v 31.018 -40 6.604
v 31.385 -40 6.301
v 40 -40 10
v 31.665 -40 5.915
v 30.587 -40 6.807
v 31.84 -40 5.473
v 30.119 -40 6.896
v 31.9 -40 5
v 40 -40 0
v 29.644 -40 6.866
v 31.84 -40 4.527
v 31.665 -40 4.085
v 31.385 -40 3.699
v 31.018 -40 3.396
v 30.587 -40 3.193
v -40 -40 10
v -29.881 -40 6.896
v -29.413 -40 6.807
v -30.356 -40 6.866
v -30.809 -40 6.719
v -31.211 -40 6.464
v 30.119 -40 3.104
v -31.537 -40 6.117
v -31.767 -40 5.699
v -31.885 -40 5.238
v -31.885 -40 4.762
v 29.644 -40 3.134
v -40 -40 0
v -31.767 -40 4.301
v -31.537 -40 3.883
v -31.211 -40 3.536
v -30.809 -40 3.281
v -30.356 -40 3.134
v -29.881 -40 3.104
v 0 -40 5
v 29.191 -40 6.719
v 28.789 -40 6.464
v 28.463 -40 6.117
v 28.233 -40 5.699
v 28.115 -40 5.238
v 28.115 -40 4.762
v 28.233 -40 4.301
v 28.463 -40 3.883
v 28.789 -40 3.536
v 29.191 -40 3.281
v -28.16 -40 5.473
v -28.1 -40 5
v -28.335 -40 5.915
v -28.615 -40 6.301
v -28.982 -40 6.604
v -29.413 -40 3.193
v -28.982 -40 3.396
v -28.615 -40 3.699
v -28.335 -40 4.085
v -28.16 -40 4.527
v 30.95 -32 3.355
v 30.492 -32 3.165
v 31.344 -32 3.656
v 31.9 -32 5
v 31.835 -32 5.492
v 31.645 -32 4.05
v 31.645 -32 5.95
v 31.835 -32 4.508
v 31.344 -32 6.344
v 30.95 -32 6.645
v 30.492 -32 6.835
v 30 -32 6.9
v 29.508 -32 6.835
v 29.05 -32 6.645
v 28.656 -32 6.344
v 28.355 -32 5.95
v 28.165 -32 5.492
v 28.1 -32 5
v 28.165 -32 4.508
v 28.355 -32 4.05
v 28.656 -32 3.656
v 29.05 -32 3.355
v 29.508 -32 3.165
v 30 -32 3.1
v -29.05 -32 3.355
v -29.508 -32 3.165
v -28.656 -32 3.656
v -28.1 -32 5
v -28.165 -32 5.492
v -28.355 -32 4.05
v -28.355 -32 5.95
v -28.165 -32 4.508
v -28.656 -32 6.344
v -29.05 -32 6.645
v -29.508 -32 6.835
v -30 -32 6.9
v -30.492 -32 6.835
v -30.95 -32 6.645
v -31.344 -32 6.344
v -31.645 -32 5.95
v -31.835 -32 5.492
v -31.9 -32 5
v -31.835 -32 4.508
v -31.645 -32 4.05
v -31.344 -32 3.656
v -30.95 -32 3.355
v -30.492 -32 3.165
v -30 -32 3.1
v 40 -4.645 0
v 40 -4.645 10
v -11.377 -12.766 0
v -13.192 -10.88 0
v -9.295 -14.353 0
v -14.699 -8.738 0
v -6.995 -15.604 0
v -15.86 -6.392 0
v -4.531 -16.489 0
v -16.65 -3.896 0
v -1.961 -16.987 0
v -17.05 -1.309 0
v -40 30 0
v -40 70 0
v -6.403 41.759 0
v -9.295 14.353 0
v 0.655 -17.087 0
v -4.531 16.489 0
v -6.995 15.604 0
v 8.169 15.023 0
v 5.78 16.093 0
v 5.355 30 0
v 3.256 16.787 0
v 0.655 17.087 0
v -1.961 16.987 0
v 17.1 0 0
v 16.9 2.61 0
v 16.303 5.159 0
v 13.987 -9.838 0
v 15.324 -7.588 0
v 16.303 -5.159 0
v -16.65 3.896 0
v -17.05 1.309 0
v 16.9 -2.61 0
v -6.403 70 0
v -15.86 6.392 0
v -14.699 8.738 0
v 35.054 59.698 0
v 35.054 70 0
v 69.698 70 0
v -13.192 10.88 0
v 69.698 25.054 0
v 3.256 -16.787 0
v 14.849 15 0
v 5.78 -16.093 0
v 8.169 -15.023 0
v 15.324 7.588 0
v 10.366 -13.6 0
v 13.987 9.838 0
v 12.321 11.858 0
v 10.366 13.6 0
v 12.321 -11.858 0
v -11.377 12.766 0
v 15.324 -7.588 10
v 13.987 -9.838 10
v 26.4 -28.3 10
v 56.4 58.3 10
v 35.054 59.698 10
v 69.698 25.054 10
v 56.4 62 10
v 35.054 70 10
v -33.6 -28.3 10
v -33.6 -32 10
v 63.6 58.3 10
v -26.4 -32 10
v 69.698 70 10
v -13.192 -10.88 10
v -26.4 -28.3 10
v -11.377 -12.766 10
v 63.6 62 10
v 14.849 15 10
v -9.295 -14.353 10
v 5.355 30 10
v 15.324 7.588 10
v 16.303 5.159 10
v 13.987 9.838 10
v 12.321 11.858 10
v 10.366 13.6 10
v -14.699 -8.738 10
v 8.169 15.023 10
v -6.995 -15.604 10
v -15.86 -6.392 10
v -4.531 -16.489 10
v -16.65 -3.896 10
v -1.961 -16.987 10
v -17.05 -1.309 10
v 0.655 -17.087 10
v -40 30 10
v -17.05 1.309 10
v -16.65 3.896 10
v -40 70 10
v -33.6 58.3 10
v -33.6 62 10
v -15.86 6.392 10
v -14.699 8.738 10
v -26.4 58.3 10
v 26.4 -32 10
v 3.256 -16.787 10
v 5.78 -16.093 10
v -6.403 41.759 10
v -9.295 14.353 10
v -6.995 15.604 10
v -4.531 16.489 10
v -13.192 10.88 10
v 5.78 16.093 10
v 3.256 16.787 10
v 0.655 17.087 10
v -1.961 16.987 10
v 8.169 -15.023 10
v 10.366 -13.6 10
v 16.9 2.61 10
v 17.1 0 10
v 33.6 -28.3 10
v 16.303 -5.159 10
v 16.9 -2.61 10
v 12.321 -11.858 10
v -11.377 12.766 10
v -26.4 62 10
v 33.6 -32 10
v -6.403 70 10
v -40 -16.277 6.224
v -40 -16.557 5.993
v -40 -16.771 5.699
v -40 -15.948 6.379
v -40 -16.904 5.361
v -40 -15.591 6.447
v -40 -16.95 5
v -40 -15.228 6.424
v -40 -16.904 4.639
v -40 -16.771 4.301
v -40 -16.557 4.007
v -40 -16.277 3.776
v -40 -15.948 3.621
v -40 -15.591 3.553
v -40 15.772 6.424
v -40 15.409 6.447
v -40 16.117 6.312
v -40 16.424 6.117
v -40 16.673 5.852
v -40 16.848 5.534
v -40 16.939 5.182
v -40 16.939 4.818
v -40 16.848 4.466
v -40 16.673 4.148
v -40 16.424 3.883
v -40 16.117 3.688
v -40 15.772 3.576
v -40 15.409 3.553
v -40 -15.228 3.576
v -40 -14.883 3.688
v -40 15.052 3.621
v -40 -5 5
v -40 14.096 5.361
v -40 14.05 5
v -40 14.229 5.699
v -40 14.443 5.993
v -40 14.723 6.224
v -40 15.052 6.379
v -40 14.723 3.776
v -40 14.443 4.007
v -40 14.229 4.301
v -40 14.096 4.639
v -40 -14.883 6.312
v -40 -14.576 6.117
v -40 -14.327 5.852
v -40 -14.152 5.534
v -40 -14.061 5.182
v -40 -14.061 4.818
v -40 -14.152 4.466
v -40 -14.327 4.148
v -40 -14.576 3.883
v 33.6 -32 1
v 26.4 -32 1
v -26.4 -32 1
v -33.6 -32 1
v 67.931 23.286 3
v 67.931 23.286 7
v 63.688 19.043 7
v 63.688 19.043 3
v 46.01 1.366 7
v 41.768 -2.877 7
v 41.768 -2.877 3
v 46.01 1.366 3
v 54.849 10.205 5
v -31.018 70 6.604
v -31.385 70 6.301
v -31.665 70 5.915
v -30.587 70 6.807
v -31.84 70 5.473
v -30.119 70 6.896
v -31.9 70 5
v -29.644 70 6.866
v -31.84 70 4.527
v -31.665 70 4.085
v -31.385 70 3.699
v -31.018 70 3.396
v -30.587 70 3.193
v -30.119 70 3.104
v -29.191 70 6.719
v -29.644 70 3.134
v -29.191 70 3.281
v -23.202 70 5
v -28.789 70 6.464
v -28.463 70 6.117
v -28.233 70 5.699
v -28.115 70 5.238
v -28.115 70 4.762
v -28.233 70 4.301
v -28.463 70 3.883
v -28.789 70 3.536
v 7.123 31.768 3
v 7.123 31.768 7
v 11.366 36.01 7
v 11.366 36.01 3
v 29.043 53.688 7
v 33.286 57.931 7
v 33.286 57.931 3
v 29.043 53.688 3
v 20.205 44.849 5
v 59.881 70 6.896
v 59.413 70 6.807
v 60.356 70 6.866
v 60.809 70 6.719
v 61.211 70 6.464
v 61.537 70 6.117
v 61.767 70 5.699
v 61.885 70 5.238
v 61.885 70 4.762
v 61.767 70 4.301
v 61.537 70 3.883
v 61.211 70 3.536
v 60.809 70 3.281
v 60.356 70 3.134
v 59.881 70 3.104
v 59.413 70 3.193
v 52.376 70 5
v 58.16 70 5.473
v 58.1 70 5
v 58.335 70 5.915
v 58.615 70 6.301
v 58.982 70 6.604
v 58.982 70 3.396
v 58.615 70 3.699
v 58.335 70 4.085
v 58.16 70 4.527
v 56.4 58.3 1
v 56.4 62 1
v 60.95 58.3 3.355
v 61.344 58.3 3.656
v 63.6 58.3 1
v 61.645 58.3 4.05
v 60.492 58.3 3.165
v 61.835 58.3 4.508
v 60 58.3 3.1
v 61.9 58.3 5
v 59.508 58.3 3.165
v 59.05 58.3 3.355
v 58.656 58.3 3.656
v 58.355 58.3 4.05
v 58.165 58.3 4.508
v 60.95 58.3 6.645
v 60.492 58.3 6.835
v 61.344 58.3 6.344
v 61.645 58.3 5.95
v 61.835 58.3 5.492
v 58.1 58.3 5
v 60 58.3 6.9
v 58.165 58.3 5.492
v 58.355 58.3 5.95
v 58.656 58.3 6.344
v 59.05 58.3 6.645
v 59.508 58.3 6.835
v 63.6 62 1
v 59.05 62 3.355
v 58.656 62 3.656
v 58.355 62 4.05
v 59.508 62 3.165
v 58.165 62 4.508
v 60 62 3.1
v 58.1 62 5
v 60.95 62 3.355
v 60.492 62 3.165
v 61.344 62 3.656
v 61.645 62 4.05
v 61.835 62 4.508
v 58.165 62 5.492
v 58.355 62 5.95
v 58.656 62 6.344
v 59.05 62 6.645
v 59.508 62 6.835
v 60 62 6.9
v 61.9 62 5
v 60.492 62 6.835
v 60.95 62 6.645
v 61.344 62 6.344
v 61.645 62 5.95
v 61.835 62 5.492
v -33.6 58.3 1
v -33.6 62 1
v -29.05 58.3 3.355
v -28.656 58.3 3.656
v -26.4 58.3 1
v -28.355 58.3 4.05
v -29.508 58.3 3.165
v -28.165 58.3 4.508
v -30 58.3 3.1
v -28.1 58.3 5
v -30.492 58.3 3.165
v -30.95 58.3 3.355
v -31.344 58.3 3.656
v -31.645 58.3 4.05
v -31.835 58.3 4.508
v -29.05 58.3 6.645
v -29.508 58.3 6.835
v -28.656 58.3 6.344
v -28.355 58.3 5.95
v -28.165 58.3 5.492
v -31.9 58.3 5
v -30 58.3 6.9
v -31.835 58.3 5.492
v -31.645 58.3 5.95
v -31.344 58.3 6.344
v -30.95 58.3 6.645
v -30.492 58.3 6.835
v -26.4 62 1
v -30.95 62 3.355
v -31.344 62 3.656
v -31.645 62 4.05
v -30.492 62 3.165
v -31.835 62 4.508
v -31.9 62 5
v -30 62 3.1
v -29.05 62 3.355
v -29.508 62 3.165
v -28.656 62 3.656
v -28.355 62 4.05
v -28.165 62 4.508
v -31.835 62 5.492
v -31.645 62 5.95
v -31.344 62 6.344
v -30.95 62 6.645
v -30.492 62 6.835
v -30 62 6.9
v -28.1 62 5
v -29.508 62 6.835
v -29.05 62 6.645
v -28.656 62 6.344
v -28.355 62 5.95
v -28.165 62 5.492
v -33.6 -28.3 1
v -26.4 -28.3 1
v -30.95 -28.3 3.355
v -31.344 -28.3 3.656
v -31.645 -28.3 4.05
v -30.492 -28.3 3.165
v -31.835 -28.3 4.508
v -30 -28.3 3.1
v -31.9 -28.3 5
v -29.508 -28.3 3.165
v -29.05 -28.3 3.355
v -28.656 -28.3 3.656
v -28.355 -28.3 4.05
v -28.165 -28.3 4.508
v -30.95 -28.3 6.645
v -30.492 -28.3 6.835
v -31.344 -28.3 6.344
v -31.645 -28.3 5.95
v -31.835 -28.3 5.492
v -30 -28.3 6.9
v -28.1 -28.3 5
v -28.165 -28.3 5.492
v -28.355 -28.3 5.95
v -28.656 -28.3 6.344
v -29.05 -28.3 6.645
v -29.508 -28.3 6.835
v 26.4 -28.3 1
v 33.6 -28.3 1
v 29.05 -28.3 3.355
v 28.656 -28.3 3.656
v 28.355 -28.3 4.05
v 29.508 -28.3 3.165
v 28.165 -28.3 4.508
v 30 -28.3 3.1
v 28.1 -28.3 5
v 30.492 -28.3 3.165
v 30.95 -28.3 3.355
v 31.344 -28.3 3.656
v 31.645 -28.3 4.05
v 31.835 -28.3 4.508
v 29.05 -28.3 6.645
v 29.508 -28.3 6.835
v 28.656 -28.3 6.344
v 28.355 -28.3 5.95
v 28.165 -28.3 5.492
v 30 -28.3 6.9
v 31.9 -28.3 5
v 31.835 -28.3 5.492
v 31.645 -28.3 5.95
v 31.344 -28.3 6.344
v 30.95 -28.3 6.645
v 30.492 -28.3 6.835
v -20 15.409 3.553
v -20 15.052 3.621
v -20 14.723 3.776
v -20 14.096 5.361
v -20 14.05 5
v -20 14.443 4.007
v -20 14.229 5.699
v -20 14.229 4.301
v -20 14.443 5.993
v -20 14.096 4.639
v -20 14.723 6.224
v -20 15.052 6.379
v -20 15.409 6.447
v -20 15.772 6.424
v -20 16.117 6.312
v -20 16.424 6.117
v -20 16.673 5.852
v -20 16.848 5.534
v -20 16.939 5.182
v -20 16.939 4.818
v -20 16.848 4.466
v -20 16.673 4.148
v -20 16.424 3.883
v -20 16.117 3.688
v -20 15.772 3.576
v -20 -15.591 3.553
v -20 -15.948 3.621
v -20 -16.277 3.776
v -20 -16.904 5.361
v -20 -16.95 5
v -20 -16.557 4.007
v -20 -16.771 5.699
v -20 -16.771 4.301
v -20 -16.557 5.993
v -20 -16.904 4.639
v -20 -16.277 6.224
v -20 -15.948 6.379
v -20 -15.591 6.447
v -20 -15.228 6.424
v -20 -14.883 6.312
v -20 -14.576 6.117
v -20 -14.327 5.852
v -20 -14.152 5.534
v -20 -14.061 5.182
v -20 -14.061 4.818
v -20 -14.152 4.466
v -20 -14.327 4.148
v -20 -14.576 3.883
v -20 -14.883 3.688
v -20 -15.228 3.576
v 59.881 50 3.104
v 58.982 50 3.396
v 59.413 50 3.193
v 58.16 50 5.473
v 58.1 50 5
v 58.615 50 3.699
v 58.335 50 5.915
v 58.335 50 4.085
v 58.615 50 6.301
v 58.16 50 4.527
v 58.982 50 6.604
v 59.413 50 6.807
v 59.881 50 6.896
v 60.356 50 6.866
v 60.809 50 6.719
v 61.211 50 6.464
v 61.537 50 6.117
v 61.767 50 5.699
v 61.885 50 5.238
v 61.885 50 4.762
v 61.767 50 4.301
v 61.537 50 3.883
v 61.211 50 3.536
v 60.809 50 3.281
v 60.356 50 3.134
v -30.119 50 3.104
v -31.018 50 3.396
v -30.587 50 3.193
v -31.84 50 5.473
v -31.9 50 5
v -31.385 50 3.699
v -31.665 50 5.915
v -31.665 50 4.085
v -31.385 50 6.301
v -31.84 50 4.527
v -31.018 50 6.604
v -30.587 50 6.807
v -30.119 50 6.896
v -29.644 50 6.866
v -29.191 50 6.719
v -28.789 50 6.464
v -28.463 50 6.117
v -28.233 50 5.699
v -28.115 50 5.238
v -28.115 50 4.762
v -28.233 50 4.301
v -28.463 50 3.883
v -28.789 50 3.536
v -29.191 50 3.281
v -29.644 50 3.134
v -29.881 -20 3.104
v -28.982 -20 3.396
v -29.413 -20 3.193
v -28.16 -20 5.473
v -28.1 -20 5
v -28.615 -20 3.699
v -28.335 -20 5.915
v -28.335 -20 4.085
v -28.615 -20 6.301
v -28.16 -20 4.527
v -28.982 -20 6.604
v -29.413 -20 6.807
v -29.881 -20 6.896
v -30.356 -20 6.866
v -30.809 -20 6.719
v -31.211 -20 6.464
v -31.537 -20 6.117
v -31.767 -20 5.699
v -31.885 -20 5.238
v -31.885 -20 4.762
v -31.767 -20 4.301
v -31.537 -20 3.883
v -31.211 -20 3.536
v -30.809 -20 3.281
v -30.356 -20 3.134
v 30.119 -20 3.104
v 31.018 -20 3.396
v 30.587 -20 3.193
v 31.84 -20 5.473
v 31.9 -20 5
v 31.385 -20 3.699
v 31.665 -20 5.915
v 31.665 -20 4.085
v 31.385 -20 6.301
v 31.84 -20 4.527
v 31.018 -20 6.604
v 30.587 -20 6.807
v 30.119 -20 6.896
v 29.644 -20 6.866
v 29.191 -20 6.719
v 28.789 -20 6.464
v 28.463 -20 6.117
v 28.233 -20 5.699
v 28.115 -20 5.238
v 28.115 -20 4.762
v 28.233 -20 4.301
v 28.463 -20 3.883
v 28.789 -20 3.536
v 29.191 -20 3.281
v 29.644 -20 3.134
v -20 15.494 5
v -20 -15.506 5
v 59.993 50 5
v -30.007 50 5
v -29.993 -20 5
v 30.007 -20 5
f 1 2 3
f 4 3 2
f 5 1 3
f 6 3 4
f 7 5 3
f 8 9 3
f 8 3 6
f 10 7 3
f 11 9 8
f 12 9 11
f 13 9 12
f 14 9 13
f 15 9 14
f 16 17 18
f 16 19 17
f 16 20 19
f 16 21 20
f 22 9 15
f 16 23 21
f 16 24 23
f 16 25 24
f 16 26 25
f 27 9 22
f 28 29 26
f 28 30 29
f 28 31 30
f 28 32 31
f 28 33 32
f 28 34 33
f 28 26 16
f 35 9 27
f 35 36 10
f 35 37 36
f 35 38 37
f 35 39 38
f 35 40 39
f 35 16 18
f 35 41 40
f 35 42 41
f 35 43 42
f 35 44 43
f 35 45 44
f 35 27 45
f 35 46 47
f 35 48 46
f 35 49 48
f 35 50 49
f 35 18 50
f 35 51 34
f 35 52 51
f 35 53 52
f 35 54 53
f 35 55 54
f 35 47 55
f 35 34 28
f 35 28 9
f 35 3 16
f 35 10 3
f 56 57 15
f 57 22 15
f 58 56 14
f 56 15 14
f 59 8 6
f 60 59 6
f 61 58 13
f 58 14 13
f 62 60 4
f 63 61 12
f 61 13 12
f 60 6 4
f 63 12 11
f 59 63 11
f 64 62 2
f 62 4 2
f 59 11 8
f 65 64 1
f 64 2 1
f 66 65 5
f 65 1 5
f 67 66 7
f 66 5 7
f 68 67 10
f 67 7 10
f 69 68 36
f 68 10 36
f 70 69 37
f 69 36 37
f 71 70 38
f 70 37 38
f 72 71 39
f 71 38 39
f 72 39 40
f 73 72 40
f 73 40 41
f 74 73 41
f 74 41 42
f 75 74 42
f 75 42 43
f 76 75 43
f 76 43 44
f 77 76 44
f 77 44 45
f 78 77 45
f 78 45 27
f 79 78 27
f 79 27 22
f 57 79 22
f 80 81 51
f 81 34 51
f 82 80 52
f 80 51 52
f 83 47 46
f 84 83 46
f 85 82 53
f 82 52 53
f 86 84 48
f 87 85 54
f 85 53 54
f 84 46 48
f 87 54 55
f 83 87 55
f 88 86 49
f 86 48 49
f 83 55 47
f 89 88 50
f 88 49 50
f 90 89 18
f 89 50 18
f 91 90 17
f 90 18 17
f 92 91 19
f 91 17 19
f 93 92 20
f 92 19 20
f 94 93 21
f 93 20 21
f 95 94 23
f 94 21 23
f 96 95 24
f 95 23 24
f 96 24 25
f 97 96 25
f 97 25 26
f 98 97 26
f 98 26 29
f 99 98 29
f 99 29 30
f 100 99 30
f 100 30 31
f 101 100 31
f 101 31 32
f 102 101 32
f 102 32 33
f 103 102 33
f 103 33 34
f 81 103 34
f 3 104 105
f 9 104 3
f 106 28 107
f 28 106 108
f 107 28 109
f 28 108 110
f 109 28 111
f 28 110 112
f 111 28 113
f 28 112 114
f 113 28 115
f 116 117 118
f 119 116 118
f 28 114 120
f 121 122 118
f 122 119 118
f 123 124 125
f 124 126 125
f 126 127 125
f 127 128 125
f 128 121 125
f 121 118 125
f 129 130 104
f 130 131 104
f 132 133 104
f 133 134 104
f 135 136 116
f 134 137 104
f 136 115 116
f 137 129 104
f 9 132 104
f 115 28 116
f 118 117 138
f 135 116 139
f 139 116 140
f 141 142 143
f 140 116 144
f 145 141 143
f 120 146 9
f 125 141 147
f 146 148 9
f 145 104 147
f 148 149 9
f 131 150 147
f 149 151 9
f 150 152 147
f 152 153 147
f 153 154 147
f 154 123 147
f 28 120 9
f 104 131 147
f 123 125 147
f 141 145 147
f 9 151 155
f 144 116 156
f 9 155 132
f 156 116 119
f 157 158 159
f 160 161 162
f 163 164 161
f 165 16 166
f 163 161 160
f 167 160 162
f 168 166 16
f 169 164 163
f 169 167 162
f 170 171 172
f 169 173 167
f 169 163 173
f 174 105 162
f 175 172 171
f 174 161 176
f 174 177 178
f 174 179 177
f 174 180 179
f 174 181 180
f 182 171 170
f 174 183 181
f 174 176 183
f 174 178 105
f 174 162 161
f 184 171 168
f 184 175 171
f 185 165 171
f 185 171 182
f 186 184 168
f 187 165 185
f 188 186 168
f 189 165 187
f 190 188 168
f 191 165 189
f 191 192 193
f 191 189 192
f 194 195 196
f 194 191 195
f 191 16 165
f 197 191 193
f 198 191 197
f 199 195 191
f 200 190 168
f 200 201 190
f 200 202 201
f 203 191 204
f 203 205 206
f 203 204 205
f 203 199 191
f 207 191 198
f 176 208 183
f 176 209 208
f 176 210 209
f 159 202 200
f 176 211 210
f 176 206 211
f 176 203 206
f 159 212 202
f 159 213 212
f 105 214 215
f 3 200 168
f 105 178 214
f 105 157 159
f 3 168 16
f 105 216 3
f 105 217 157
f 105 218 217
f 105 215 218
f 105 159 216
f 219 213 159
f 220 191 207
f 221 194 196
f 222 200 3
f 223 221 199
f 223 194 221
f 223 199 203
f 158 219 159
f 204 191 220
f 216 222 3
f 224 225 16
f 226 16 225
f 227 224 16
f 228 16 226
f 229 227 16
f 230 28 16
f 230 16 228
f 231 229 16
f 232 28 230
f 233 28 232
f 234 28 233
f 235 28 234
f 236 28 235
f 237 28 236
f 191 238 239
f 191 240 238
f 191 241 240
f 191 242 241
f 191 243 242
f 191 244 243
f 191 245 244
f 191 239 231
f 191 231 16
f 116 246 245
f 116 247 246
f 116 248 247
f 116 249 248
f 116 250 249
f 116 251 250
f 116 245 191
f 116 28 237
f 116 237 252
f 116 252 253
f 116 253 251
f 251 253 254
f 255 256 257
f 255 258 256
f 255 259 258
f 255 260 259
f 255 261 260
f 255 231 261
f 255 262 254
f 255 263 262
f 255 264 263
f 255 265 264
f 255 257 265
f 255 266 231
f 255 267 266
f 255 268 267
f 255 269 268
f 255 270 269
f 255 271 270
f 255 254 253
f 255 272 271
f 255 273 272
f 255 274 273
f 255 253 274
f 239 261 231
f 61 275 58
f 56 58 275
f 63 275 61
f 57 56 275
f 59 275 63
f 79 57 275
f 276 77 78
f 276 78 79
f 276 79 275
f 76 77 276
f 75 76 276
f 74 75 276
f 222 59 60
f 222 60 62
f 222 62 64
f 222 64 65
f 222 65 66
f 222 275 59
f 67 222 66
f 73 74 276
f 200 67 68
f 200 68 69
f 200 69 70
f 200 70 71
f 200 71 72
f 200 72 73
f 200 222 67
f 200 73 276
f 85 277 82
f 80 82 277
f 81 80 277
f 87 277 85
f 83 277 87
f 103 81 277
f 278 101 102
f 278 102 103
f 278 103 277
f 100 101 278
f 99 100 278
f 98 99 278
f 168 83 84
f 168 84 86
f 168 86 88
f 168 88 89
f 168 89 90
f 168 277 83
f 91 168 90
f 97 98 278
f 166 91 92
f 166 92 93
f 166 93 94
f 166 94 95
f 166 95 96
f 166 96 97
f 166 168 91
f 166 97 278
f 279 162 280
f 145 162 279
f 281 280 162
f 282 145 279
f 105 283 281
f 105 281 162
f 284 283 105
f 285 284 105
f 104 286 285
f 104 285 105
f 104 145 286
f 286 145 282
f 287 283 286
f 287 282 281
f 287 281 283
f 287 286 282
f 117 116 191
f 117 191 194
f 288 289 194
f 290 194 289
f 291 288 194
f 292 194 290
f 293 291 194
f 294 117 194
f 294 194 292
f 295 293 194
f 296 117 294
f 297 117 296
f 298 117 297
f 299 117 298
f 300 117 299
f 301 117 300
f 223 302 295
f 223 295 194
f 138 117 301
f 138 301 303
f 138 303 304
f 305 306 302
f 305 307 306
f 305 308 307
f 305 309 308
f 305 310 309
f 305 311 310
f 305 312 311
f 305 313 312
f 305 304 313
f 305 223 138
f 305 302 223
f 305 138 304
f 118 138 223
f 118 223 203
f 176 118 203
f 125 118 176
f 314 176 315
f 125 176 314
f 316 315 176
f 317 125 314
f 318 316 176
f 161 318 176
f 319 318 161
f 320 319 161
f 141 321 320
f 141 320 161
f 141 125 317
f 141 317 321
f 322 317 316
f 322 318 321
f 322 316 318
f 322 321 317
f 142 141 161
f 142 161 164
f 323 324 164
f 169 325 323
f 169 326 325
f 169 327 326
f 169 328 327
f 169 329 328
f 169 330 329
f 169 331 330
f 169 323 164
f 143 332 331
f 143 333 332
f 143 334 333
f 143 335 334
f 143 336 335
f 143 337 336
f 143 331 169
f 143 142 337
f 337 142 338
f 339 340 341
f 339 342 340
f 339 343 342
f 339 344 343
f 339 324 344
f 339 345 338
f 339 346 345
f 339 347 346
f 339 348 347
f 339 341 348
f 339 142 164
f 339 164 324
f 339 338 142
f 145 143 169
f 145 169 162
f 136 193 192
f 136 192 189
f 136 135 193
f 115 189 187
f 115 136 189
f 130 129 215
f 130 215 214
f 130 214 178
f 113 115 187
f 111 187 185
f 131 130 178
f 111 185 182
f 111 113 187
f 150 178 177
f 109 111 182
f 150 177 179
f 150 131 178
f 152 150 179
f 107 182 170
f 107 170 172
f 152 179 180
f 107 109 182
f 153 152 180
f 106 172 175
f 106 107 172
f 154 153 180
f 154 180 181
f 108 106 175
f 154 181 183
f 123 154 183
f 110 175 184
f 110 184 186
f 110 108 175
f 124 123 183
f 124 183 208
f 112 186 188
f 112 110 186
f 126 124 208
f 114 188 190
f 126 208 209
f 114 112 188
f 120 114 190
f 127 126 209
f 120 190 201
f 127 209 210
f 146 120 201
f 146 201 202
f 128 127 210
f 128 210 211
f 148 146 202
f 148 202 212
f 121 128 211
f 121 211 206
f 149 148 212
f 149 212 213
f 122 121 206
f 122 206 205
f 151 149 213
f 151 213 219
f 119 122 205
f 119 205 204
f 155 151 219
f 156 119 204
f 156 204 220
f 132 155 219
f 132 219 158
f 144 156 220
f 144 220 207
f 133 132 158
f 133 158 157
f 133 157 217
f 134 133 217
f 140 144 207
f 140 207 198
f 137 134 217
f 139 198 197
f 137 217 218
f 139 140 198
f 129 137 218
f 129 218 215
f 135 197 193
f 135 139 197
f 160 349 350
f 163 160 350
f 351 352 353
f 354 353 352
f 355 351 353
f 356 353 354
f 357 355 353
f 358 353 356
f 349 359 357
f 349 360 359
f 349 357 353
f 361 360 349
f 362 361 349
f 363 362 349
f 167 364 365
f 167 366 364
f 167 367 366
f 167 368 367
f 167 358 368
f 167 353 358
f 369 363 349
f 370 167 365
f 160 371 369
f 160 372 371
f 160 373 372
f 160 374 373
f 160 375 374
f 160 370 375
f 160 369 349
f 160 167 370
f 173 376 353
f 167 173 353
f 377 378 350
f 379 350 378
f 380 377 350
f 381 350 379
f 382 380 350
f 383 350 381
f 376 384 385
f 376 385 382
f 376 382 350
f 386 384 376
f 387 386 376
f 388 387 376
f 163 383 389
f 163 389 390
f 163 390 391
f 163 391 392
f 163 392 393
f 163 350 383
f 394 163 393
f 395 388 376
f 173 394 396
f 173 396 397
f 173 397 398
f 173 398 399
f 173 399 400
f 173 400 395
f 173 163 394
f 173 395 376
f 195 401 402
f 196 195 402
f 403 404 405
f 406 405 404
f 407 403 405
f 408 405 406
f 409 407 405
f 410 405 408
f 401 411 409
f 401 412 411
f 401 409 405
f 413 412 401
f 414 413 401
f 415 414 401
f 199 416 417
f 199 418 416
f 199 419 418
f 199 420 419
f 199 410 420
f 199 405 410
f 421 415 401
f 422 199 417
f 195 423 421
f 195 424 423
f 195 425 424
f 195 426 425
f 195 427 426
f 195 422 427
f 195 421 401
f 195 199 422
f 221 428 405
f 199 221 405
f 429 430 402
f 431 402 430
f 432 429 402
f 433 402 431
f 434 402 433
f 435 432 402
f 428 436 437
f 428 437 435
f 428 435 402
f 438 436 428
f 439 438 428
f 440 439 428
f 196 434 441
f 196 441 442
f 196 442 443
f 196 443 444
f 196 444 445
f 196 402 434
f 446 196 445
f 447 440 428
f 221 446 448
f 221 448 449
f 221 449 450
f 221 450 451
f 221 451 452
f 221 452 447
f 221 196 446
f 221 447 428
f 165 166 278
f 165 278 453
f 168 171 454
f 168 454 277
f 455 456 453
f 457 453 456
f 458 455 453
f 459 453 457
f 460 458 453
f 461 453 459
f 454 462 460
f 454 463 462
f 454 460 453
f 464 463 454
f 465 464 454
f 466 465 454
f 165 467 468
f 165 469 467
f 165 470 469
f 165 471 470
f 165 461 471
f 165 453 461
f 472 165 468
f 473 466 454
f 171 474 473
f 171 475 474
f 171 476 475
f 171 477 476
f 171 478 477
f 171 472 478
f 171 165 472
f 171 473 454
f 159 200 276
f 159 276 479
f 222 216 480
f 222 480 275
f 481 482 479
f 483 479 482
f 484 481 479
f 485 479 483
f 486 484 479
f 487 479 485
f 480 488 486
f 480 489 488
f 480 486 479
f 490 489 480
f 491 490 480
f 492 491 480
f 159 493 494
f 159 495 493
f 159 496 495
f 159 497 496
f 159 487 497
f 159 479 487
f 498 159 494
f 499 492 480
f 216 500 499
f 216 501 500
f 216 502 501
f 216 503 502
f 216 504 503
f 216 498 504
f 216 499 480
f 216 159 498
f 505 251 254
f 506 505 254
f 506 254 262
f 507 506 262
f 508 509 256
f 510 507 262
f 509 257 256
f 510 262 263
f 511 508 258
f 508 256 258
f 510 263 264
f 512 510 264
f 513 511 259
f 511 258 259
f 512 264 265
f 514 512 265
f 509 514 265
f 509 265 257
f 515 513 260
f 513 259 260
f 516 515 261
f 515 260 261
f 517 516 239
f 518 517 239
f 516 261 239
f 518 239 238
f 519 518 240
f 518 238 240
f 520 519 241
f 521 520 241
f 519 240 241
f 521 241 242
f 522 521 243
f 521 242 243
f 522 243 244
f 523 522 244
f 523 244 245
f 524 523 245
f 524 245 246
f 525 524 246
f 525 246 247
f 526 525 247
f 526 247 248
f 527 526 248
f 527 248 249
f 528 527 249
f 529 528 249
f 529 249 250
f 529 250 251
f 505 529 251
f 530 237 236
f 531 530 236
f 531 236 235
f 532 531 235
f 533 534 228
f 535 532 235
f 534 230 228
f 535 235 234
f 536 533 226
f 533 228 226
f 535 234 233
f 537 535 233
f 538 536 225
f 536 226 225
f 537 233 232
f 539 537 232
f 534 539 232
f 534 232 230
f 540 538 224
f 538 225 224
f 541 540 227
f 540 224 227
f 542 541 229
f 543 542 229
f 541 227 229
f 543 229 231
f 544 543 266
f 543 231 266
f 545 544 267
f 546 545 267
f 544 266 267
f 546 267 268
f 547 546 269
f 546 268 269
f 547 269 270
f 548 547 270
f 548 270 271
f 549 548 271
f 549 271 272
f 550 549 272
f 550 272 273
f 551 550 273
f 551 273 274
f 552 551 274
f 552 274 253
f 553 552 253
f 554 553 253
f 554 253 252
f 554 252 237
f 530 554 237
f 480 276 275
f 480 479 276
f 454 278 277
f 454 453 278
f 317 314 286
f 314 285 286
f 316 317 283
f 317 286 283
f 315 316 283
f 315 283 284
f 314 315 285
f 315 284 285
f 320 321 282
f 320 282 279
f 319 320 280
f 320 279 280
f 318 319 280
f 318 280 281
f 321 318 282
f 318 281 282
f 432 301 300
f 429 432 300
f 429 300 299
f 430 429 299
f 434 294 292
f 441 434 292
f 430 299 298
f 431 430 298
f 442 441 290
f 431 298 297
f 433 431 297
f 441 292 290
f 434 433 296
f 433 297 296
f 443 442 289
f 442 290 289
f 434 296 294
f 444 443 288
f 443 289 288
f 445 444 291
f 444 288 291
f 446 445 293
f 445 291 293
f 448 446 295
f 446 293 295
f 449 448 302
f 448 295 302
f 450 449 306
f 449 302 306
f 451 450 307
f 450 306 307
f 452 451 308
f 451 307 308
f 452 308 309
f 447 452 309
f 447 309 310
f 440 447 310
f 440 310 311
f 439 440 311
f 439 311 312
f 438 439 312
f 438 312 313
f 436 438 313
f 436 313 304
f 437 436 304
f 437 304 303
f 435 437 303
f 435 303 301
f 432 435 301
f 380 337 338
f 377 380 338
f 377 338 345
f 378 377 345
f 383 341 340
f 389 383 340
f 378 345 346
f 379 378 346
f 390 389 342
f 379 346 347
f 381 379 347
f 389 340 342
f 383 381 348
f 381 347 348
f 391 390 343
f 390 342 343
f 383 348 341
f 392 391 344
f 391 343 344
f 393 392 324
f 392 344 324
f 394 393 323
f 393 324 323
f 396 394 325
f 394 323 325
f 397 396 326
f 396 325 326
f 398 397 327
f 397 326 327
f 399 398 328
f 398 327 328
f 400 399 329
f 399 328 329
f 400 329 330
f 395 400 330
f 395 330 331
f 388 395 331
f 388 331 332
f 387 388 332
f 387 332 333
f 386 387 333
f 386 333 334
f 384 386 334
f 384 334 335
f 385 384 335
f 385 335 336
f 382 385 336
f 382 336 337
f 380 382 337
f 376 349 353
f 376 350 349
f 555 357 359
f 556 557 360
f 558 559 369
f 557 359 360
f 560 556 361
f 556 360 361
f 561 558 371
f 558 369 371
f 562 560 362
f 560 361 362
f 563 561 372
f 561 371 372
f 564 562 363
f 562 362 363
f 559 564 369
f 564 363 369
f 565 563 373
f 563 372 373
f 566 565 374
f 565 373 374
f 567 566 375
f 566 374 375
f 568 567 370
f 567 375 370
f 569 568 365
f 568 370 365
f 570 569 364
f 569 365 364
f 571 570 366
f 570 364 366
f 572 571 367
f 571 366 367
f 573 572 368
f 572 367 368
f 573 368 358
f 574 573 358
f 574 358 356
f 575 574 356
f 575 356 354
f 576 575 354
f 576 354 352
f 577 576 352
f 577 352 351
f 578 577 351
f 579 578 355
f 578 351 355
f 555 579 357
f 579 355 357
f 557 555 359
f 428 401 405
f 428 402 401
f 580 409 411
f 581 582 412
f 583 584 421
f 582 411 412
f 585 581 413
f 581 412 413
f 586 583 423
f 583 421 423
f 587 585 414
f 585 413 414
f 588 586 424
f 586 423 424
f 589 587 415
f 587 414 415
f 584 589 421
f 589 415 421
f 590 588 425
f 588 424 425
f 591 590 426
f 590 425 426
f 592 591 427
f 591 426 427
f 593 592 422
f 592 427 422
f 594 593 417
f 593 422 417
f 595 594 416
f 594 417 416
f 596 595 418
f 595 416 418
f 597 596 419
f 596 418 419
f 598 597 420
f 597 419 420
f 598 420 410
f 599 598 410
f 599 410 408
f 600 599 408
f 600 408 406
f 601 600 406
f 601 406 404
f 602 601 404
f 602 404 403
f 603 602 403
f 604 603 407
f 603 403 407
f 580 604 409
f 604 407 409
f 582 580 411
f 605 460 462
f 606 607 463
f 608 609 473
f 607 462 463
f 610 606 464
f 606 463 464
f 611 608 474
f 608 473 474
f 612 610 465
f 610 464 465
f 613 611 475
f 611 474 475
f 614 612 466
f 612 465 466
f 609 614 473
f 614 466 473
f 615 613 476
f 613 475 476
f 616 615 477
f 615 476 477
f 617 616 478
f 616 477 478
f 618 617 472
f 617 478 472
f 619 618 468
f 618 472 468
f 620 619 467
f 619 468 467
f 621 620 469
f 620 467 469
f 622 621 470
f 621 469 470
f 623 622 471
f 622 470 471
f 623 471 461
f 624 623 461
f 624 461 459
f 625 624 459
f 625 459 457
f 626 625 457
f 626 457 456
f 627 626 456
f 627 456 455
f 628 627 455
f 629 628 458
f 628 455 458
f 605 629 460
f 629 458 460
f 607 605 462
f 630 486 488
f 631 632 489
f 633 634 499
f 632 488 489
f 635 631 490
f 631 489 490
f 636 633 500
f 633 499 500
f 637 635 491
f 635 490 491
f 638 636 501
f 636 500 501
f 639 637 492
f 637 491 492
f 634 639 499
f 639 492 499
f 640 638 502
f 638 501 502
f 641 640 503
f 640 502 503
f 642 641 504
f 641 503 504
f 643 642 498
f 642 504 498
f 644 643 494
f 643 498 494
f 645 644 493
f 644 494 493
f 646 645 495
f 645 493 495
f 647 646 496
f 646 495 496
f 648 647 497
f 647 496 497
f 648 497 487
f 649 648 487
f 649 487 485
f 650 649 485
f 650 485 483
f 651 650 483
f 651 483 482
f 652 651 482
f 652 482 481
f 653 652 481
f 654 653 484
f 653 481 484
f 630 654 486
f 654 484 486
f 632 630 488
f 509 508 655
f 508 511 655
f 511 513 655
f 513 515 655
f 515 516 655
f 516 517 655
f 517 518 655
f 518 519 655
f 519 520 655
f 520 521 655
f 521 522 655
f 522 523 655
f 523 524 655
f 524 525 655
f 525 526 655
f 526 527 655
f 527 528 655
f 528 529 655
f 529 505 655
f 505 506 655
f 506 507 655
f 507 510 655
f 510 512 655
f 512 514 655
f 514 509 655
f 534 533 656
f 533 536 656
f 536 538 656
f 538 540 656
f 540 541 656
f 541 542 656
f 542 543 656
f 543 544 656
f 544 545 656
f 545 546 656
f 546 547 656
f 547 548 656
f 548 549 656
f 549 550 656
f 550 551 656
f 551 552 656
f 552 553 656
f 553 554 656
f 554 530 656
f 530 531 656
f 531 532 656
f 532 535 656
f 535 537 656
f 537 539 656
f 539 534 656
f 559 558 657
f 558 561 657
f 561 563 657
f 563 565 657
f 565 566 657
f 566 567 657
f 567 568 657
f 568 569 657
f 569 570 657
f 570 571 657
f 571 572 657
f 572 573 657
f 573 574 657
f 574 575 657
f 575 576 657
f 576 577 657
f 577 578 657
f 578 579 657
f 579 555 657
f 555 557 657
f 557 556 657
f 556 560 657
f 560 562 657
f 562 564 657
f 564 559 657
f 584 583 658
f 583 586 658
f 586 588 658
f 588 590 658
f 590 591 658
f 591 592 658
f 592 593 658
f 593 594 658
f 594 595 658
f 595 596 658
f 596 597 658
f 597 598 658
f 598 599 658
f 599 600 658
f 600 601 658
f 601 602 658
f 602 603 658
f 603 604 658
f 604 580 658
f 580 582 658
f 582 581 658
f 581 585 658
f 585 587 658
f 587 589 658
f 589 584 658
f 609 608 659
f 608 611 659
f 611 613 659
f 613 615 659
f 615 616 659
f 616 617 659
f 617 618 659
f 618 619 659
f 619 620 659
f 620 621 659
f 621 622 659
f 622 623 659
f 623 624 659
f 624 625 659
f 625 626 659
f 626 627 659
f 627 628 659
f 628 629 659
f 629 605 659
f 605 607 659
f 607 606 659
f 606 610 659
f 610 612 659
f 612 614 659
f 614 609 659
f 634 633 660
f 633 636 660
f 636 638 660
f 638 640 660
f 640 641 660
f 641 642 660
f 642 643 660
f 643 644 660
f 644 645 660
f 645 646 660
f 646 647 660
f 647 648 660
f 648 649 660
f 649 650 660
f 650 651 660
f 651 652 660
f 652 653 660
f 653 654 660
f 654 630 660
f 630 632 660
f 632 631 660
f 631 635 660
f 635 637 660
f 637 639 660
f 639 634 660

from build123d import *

# Parameters (mm, degrees)
SKETCH003_R     = 17.1
PAD001_DEPTH    = 10
SKETCH001_W     = 6
SKETCH001_H     = 4
POCKET_DEPTH    = 50
SKETCH004_R     = 1.9
POCKET001_DEPTH = 20
SKETCH006_R     = 1.9
POCKET002_DEPTH = 20
SKETCH007_R     = 1.45
POCKET003_DEPTH = 20
SKETCH_W        = 7.2
SKETCH_H        = 3.7
POCKET004_DEPTH = 9


with BuildPart() as part:
    # Sketch003 → Pad001 (new body)
    with BuildSketch(Plane.XY):
        Polygon((-40, -40), (-40, 30), (-40, 70), (-6.4034604704, 70), (-6.4034604704, 41.7587995296), (5.3553390593, 30), (35.0538238691, 59.6984848098), (35.0538238691, 70), (69.6984848098, 70), (69.6984848098, 25.0538238692), (40, -4.6446609407), (40, -40), align=None)
        Circle(SKETCH003_R, mode=Mode.SUBTRACT)
    extrude(amount=PAD001_DEPTH)

    # Sketch001 → Pocket (cut)
    with BuildSketch(Plane(origin=(22.3223304704, -22.3223304703, 0), x_dir=(0.7071067812, 0.7071067812, 0), z_dir=(0.7071067812, -0.7071067812, 0))):
        with Locations((30.5, 5)):
            Rectangle(SKETCH001_W, SKETCH001_H)
        with Locations((61.5, 5)):
            Rectangle(SKETCH001_W, SKETCH001_H)
    extrude(amount=-POCKET_DEPTH, mode=Mode.SUBTRACT)

    # Sketch004 → Pocket001 (cut)
    with BuildSketch(Plane(origin=(0, 70, 0), x_dir=(-1, 0, 0), z_dir=(0, 1, 0))):
        with Locations((30, 5)):
            Circle(SKETCH004_R)
        with Locations((-60, 5)):
            Circle(SKETCH004_R)
    extrude(amount=-POCKET001_DEPTH, mode=Mode.SUBTRACT)

    # Sketch006 → Pocket002 (cut)
    with BuildSketch(Plane.XZ.offset(40)):
        with Locations((30, 5)):
            Circle(SKETCH006_R)
        with Locations((-30, 5)):
            Circle(SKETCH006_R)
    extrude(amount=-POCKET002_DEPTH, mode=Mode.SUBTRACT)

    # Sketch007 → Pocket003 (cut)
    with BuildSketch(Plane(origin=(-40, 0, 0), x_dir=(0, -1, 0), z_dir=(-1, 0, 0))):
        with Locations((-15.5, 5)):
            Circle(SKETCH007_R)
        with Locations((15.5, 5)):
            Circle(SKETCH007_R)
    extrude(amount=-POCKET003_DEPTH, mode=Mode.SUBTRACT)

    # Sketch → Pocket004 (cut)
    with BuildSketch(Plane.XY.offset(10)):
        with Locations((-30, -30.15)):
            Rectangle(SKETCH_W, SKETCH_H)
        with Locations((30, -30.15)):
            Rectangle(SKETCH_W, SKETCH_H)
        with Locations((-30, 60.15)):
            Rectangle(SKETCH_W, SKETCH_H)
        with Locations((60, 60.15)):
            Rectangle(SKETCH_W, SKETCH_H)
    extrude(amount=-POCKET004_DEPTH, mode=Mode.SUBTRACT)


solid = part.part
